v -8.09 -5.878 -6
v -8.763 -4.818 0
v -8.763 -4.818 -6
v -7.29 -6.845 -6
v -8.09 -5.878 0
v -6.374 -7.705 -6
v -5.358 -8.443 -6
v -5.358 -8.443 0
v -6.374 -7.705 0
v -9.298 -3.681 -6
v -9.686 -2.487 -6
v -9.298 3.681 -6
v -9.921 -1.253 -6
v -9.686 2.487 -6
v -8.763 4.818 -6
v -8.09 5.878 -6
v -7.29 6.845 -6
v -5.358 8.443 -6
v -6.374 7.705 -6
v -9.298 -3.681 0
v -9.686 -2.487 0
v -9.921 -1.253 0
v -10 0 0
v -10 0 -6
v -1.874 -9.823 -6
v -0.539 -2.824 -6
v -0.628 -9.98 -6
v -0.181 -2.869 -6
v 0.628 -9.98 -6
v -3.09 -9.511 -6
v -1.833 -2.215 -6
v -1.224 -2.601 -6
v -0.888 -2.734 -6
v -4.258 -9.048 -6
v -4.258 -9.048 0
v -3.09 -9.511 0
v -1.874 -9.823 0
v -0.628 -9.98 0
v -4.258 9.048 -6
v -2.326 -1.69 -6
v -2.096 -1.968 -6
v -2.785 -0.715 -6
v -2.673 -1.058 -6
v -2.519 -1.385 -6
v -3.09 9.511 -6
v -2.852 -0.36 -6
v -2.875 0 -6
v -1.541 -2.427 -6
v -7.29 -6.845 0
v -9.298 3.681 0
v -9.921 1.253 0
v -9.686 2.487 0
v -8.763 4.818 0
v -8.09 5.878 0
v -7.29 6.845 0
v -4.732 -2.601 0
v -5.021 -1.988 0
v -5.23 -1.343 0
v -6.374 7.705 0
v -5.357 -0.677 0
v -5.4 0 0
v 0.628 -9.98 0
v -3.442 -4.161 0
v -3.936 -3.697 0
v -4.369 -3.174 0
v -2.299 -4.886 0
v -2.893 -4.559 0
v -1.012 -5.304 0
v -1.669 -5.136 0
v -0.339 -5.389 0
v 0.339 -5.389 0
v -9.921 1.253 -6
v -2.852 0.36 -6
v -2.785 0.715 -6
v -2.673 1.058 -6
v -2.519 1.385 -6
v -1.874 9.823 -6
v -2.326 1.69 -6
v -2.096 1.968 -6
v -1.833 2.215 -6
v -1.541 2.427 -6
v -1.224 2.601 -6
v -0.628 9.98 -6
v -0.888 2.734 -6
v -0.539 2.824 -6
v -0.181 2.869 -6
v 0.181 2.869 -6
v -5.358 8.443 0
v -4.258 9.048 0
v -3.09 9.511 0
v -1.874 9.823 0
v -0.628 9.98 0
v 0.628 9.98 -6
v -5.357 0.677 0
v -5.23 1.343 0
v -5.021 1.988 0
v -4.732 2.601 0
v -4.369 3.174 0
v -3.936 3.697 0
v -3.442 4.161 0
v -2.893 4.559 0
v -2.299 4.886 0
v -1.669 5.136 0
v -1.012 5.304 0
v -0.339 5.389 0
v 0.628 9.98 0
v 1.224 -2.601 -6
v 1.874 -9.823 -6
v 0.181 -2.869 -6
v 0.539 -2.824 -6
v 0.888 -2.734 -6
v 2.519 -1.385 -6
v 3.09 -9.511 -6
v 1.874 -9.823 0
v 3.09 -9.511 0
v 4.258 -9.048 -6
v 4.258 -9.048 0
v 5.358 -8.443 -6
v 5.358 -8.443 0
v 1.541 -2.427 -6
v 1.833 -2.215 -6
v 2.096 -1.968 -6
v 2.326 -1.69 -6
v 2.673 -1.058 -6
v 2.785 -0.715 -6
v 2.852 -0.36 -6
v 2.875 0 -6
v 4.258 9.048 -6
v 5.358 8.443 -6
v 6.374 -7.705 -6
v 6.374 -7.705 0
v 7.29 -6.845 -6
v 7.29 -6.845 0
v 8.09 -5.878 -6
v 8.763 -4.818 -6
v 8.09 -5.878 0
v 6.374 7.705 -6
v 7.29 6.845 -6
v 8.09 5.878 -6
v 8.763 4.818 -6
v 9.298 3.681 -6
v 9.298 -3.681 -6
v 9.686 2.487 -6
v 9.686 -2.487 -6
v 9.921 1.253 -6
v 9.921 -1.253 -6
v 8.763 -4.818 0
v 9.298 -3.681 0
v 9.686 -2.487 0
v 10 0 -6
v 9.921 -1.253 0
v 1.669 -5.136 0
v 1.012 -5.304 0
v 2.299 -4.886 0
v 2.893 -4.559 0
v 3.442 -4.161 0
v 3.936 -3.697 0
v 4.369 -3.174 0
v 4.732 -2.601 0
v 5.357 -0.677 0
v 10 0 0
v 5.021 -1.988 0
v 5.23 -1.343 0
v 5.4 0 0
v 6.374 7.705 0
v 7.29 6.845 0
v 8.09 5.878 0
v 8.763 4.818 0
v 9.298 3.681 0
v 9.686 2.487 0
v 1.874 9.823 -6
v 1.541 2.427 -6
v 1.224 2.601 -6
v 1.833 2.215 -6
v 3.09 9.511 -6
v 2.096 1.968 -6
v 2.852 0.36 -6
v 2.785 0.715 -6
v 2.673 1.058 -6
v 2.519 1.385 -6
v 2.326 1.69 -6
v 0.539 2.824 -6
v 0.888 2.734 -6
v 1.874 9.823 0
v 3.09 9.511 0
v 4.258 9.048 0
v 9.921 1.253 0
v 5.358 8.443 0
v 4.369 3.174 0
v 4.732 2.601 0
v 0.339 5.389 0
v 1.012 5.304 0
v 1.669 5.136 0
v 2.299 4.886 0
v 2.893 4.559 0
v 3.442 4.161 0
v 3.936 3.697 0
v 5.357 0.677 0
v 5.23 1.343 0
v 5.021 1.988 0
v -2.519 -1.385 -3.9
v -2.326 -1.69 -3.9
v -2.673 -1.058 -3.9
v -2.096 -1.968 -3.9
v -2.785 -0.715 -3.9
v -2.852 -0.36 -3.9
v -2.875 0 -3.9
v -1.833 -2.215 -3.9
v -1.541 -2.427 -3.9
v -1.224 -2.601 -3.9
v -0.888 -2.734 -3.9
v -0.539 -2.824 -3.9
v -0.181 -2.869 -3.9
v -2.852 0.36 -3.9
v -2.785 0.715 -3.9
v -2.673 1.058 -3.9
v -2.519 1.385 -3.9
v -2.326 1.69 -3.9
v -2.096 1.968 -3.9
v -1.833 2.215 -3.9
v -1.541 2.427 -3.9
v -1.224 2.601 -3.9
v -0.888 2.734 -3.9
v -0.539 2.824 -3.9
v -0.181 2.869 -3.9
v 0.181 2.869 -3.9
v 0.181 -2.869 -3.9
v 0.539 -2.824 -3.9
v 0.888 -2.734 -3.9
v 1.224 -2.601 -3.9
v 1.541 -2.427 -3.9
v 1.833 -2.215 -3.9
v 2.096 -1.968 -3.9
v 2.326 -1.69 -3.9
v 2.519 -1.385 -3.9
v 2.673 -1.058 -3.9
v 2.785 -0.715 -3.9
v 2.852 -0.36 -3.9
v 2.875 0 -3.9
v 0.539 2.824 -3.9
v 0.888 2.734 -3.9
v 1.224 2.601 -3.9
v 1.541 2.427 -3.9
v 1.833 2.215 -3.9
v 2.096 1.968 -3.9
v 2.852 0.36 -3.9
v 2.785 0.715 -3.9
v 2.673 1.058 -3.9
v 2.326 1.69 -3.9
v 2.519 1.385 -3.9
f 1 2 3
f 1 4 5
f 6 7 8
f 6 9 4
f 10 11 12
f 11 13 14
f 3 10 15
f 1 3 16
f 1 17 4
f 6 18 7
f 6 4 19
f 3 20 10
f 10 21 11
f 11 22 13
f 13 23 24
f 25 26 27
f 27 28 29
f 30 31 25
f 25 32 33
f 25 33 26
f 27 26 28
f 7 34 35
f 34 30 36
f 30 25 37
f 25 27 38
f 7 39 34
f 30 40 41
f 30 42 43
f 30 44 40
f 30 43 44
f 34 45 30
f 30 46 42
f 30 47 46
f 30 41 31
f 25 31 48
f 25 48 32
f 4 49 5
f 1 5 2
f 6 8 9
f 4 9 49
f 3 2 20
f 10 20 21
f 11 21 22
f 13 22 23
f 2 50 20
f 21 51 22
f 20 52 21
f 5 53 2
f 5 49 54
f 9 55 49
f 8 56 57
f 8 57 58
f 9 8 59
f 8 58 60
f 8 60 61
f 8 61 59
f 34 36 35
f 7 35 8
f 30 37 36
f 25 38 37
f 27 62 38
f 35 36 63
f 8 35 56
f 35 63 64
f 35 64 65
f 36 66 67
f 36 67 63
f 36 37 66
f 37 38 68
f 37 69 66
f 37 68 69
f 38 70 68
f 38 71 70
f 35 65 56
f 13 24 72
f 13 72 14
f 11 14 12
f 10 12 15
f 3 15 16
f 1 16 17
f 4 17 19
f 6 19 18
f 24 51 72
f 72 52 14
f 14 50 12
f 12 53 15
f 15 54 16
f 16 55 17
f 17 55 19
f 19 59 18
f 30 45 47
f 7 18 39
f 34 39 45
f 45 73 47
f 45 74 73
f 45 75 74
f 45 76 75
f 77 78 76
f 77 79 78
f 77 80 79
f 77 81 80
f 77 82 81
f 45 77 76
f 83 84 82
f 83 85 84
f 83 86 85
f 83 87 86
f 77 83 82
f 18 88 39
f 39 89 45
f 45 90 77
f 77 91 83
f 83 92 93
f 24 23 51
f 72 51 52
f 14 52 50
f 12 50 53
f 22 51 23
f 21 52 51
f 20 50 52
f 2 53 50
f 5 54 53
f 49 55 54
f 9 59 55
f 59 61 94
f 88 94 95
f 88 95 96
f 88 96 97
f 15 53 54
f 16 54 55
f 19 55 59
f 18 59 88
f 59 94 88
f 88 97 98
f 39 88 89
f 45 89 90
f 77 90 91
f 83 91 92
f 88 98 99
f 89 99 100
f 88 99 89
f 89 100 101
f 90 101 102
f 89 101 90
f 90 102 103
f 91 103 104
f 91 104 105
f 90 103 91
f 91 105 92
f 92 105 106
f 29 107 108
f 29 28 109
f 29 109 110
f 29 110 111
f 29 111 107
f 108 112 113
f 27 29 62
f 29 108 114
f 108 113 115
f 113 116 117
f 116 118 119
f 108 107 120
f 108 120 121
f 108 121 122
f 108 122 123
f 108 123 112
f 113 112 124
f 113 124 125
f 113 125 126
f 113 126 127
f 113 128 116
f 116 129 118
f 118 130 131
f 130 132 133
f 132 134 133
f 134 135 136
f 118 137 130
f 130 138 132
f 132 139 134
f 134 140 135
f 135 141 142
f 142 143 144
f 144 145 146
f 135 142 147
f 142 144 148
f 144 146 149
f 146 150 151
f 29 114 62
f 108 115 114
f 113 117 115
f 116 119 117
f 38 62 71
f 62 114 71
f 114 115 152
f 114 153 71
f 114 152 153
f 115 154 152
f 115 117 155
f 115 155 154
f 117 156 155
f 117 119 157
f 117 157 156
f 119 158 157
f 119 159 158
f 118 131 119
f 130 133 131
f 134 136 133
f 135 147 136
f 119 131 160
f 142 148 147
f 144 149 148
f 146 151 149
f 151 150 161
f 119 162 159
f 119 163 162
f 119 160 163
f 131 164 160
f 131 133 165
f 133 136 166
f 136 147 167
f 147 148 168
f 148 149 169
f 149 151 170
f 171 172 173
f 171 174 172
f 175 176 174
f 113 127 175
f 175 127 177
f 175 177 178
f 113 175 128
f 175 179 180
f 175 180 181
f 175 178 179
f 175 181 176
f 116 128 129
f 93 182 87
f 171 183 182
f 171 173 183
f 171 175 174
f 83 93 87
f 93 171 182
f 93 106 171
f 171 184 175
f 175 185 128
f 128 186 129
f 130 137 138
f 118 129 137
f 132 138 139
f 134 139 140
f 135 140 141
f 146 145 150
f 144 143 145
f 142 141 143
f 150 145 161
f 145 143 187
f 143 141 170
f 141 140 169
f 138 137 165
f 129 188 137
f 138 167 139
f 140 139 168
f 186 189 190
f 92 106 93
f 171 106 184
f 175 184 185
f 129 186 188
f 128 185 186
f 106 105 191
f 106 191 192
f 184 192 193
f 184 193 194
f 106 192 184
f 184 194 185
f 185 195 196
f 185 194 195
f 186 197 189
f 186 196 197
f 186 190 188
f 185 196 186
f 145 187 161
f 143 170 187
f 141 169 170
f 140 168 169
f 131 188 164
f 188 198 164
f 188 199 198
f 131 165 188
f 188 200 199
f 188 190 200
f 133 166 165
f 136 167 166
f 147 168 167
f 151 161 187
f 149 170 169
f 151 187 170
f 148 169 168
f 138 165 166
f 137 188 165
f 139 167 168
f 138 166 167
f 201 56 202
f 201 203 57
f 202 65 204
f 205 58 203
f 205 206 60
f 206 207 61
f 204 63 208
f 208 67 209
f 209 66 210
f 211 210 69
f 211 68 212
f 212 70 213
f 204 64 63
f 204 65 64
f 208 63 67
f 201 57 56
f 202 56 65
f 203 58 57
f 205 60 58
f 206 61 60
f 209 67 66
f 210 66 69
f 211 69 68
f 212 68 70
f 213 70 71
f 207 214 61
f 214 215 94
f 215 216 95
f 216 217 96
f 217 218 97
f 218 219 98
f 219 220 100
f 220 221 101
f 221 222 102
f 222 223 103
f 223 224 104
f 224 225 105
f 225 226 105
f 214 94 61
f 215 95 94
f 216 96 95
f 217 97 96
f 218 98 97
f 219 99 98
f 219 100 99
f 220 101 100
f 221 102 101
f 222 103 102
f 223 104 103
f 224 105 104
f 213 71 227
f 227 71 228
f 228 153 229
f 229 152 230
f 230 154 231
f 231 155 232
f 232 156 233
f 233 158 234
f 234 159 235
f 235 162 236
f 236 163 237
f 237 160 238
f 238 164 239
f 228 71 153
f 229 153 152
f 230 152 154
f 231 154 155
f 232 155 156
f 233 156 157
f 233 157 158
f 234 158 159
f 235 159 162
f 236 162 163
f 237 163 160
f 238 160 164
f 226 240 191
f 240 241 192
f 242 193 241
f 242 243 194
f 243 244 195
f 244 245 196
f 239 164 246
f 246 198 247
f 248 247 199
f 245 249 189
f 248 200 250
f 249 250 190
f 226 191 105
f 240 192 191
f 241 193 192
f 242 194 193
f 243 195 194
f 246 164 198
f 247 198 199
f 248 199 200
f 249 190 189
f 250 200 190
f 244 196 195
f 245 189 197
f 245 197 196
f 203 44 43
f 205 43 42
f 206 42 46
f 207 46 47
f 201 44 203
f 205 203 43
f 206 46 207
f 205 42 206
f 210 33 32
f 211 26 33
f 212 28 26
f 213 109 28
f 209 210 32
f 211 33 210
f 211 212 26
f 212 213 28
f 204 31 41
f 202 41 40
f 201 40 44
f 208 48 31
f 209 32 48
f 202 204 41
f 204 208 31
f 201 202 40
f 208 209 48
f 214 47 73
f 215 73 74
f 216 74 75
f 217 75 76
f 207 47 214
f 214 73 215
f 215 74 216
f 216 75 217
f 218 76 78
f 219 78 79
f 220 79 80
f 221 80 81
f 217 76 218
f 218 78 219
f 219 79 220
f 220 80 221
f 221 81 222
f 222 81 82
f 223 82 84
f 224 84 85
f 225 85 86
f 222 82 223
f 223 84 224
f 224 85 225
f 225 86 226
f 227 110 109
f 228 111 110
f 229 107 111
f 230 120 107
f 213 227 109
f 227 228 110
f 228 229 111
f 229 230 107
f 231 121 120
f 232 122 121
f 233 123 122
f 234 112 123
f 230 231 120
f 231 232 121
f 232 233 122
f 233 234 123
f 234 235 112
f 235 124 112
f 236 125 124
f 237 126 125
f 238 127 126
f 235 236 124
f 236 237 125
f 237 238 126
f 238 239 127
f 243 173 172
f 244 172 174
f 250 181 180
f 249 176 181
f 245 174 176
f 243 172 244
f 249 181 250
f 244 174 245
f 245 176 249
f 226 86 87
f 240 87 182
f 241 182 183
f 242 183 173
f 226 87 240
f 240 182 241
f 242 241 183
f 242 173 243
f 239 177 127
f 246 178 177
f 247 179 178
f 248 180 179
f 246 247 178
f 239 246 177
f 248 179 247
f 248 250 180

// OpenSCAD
$fn = 50;

difference() {
	union() {
		translate(v = [0, 0, -6.0]) {
			cylinder(h = 6, r = 10.0);
		}
		#translate(v = [0, 0, -9.0]) {
			cylinder(h = 9, r = 2.875);
		}
	}
	union() {
		translate(v = [0, 0, 0]) {
			rotate(a = [0, 0, 0]) {
				difference() {
					union() {
						translate(v = [0, 0, -9.0]) {
							cylinder(h = 9, r = 2.6);
						}
						translate(v = [0, 0, -3.9]) {
							cylinder(h = 3.9, r1 = 2.875, r2 = 5.4);
						}
						translate(v = [0, 0, -9.0]) {
							cylinder(h = 9, r = 2.875);
						}
						translate(v = [0, 0, -9.0]) {
							cylinder(h = 9, r = 2.6);
						}
					}
					union();
				}
			}
		}
	}
}
